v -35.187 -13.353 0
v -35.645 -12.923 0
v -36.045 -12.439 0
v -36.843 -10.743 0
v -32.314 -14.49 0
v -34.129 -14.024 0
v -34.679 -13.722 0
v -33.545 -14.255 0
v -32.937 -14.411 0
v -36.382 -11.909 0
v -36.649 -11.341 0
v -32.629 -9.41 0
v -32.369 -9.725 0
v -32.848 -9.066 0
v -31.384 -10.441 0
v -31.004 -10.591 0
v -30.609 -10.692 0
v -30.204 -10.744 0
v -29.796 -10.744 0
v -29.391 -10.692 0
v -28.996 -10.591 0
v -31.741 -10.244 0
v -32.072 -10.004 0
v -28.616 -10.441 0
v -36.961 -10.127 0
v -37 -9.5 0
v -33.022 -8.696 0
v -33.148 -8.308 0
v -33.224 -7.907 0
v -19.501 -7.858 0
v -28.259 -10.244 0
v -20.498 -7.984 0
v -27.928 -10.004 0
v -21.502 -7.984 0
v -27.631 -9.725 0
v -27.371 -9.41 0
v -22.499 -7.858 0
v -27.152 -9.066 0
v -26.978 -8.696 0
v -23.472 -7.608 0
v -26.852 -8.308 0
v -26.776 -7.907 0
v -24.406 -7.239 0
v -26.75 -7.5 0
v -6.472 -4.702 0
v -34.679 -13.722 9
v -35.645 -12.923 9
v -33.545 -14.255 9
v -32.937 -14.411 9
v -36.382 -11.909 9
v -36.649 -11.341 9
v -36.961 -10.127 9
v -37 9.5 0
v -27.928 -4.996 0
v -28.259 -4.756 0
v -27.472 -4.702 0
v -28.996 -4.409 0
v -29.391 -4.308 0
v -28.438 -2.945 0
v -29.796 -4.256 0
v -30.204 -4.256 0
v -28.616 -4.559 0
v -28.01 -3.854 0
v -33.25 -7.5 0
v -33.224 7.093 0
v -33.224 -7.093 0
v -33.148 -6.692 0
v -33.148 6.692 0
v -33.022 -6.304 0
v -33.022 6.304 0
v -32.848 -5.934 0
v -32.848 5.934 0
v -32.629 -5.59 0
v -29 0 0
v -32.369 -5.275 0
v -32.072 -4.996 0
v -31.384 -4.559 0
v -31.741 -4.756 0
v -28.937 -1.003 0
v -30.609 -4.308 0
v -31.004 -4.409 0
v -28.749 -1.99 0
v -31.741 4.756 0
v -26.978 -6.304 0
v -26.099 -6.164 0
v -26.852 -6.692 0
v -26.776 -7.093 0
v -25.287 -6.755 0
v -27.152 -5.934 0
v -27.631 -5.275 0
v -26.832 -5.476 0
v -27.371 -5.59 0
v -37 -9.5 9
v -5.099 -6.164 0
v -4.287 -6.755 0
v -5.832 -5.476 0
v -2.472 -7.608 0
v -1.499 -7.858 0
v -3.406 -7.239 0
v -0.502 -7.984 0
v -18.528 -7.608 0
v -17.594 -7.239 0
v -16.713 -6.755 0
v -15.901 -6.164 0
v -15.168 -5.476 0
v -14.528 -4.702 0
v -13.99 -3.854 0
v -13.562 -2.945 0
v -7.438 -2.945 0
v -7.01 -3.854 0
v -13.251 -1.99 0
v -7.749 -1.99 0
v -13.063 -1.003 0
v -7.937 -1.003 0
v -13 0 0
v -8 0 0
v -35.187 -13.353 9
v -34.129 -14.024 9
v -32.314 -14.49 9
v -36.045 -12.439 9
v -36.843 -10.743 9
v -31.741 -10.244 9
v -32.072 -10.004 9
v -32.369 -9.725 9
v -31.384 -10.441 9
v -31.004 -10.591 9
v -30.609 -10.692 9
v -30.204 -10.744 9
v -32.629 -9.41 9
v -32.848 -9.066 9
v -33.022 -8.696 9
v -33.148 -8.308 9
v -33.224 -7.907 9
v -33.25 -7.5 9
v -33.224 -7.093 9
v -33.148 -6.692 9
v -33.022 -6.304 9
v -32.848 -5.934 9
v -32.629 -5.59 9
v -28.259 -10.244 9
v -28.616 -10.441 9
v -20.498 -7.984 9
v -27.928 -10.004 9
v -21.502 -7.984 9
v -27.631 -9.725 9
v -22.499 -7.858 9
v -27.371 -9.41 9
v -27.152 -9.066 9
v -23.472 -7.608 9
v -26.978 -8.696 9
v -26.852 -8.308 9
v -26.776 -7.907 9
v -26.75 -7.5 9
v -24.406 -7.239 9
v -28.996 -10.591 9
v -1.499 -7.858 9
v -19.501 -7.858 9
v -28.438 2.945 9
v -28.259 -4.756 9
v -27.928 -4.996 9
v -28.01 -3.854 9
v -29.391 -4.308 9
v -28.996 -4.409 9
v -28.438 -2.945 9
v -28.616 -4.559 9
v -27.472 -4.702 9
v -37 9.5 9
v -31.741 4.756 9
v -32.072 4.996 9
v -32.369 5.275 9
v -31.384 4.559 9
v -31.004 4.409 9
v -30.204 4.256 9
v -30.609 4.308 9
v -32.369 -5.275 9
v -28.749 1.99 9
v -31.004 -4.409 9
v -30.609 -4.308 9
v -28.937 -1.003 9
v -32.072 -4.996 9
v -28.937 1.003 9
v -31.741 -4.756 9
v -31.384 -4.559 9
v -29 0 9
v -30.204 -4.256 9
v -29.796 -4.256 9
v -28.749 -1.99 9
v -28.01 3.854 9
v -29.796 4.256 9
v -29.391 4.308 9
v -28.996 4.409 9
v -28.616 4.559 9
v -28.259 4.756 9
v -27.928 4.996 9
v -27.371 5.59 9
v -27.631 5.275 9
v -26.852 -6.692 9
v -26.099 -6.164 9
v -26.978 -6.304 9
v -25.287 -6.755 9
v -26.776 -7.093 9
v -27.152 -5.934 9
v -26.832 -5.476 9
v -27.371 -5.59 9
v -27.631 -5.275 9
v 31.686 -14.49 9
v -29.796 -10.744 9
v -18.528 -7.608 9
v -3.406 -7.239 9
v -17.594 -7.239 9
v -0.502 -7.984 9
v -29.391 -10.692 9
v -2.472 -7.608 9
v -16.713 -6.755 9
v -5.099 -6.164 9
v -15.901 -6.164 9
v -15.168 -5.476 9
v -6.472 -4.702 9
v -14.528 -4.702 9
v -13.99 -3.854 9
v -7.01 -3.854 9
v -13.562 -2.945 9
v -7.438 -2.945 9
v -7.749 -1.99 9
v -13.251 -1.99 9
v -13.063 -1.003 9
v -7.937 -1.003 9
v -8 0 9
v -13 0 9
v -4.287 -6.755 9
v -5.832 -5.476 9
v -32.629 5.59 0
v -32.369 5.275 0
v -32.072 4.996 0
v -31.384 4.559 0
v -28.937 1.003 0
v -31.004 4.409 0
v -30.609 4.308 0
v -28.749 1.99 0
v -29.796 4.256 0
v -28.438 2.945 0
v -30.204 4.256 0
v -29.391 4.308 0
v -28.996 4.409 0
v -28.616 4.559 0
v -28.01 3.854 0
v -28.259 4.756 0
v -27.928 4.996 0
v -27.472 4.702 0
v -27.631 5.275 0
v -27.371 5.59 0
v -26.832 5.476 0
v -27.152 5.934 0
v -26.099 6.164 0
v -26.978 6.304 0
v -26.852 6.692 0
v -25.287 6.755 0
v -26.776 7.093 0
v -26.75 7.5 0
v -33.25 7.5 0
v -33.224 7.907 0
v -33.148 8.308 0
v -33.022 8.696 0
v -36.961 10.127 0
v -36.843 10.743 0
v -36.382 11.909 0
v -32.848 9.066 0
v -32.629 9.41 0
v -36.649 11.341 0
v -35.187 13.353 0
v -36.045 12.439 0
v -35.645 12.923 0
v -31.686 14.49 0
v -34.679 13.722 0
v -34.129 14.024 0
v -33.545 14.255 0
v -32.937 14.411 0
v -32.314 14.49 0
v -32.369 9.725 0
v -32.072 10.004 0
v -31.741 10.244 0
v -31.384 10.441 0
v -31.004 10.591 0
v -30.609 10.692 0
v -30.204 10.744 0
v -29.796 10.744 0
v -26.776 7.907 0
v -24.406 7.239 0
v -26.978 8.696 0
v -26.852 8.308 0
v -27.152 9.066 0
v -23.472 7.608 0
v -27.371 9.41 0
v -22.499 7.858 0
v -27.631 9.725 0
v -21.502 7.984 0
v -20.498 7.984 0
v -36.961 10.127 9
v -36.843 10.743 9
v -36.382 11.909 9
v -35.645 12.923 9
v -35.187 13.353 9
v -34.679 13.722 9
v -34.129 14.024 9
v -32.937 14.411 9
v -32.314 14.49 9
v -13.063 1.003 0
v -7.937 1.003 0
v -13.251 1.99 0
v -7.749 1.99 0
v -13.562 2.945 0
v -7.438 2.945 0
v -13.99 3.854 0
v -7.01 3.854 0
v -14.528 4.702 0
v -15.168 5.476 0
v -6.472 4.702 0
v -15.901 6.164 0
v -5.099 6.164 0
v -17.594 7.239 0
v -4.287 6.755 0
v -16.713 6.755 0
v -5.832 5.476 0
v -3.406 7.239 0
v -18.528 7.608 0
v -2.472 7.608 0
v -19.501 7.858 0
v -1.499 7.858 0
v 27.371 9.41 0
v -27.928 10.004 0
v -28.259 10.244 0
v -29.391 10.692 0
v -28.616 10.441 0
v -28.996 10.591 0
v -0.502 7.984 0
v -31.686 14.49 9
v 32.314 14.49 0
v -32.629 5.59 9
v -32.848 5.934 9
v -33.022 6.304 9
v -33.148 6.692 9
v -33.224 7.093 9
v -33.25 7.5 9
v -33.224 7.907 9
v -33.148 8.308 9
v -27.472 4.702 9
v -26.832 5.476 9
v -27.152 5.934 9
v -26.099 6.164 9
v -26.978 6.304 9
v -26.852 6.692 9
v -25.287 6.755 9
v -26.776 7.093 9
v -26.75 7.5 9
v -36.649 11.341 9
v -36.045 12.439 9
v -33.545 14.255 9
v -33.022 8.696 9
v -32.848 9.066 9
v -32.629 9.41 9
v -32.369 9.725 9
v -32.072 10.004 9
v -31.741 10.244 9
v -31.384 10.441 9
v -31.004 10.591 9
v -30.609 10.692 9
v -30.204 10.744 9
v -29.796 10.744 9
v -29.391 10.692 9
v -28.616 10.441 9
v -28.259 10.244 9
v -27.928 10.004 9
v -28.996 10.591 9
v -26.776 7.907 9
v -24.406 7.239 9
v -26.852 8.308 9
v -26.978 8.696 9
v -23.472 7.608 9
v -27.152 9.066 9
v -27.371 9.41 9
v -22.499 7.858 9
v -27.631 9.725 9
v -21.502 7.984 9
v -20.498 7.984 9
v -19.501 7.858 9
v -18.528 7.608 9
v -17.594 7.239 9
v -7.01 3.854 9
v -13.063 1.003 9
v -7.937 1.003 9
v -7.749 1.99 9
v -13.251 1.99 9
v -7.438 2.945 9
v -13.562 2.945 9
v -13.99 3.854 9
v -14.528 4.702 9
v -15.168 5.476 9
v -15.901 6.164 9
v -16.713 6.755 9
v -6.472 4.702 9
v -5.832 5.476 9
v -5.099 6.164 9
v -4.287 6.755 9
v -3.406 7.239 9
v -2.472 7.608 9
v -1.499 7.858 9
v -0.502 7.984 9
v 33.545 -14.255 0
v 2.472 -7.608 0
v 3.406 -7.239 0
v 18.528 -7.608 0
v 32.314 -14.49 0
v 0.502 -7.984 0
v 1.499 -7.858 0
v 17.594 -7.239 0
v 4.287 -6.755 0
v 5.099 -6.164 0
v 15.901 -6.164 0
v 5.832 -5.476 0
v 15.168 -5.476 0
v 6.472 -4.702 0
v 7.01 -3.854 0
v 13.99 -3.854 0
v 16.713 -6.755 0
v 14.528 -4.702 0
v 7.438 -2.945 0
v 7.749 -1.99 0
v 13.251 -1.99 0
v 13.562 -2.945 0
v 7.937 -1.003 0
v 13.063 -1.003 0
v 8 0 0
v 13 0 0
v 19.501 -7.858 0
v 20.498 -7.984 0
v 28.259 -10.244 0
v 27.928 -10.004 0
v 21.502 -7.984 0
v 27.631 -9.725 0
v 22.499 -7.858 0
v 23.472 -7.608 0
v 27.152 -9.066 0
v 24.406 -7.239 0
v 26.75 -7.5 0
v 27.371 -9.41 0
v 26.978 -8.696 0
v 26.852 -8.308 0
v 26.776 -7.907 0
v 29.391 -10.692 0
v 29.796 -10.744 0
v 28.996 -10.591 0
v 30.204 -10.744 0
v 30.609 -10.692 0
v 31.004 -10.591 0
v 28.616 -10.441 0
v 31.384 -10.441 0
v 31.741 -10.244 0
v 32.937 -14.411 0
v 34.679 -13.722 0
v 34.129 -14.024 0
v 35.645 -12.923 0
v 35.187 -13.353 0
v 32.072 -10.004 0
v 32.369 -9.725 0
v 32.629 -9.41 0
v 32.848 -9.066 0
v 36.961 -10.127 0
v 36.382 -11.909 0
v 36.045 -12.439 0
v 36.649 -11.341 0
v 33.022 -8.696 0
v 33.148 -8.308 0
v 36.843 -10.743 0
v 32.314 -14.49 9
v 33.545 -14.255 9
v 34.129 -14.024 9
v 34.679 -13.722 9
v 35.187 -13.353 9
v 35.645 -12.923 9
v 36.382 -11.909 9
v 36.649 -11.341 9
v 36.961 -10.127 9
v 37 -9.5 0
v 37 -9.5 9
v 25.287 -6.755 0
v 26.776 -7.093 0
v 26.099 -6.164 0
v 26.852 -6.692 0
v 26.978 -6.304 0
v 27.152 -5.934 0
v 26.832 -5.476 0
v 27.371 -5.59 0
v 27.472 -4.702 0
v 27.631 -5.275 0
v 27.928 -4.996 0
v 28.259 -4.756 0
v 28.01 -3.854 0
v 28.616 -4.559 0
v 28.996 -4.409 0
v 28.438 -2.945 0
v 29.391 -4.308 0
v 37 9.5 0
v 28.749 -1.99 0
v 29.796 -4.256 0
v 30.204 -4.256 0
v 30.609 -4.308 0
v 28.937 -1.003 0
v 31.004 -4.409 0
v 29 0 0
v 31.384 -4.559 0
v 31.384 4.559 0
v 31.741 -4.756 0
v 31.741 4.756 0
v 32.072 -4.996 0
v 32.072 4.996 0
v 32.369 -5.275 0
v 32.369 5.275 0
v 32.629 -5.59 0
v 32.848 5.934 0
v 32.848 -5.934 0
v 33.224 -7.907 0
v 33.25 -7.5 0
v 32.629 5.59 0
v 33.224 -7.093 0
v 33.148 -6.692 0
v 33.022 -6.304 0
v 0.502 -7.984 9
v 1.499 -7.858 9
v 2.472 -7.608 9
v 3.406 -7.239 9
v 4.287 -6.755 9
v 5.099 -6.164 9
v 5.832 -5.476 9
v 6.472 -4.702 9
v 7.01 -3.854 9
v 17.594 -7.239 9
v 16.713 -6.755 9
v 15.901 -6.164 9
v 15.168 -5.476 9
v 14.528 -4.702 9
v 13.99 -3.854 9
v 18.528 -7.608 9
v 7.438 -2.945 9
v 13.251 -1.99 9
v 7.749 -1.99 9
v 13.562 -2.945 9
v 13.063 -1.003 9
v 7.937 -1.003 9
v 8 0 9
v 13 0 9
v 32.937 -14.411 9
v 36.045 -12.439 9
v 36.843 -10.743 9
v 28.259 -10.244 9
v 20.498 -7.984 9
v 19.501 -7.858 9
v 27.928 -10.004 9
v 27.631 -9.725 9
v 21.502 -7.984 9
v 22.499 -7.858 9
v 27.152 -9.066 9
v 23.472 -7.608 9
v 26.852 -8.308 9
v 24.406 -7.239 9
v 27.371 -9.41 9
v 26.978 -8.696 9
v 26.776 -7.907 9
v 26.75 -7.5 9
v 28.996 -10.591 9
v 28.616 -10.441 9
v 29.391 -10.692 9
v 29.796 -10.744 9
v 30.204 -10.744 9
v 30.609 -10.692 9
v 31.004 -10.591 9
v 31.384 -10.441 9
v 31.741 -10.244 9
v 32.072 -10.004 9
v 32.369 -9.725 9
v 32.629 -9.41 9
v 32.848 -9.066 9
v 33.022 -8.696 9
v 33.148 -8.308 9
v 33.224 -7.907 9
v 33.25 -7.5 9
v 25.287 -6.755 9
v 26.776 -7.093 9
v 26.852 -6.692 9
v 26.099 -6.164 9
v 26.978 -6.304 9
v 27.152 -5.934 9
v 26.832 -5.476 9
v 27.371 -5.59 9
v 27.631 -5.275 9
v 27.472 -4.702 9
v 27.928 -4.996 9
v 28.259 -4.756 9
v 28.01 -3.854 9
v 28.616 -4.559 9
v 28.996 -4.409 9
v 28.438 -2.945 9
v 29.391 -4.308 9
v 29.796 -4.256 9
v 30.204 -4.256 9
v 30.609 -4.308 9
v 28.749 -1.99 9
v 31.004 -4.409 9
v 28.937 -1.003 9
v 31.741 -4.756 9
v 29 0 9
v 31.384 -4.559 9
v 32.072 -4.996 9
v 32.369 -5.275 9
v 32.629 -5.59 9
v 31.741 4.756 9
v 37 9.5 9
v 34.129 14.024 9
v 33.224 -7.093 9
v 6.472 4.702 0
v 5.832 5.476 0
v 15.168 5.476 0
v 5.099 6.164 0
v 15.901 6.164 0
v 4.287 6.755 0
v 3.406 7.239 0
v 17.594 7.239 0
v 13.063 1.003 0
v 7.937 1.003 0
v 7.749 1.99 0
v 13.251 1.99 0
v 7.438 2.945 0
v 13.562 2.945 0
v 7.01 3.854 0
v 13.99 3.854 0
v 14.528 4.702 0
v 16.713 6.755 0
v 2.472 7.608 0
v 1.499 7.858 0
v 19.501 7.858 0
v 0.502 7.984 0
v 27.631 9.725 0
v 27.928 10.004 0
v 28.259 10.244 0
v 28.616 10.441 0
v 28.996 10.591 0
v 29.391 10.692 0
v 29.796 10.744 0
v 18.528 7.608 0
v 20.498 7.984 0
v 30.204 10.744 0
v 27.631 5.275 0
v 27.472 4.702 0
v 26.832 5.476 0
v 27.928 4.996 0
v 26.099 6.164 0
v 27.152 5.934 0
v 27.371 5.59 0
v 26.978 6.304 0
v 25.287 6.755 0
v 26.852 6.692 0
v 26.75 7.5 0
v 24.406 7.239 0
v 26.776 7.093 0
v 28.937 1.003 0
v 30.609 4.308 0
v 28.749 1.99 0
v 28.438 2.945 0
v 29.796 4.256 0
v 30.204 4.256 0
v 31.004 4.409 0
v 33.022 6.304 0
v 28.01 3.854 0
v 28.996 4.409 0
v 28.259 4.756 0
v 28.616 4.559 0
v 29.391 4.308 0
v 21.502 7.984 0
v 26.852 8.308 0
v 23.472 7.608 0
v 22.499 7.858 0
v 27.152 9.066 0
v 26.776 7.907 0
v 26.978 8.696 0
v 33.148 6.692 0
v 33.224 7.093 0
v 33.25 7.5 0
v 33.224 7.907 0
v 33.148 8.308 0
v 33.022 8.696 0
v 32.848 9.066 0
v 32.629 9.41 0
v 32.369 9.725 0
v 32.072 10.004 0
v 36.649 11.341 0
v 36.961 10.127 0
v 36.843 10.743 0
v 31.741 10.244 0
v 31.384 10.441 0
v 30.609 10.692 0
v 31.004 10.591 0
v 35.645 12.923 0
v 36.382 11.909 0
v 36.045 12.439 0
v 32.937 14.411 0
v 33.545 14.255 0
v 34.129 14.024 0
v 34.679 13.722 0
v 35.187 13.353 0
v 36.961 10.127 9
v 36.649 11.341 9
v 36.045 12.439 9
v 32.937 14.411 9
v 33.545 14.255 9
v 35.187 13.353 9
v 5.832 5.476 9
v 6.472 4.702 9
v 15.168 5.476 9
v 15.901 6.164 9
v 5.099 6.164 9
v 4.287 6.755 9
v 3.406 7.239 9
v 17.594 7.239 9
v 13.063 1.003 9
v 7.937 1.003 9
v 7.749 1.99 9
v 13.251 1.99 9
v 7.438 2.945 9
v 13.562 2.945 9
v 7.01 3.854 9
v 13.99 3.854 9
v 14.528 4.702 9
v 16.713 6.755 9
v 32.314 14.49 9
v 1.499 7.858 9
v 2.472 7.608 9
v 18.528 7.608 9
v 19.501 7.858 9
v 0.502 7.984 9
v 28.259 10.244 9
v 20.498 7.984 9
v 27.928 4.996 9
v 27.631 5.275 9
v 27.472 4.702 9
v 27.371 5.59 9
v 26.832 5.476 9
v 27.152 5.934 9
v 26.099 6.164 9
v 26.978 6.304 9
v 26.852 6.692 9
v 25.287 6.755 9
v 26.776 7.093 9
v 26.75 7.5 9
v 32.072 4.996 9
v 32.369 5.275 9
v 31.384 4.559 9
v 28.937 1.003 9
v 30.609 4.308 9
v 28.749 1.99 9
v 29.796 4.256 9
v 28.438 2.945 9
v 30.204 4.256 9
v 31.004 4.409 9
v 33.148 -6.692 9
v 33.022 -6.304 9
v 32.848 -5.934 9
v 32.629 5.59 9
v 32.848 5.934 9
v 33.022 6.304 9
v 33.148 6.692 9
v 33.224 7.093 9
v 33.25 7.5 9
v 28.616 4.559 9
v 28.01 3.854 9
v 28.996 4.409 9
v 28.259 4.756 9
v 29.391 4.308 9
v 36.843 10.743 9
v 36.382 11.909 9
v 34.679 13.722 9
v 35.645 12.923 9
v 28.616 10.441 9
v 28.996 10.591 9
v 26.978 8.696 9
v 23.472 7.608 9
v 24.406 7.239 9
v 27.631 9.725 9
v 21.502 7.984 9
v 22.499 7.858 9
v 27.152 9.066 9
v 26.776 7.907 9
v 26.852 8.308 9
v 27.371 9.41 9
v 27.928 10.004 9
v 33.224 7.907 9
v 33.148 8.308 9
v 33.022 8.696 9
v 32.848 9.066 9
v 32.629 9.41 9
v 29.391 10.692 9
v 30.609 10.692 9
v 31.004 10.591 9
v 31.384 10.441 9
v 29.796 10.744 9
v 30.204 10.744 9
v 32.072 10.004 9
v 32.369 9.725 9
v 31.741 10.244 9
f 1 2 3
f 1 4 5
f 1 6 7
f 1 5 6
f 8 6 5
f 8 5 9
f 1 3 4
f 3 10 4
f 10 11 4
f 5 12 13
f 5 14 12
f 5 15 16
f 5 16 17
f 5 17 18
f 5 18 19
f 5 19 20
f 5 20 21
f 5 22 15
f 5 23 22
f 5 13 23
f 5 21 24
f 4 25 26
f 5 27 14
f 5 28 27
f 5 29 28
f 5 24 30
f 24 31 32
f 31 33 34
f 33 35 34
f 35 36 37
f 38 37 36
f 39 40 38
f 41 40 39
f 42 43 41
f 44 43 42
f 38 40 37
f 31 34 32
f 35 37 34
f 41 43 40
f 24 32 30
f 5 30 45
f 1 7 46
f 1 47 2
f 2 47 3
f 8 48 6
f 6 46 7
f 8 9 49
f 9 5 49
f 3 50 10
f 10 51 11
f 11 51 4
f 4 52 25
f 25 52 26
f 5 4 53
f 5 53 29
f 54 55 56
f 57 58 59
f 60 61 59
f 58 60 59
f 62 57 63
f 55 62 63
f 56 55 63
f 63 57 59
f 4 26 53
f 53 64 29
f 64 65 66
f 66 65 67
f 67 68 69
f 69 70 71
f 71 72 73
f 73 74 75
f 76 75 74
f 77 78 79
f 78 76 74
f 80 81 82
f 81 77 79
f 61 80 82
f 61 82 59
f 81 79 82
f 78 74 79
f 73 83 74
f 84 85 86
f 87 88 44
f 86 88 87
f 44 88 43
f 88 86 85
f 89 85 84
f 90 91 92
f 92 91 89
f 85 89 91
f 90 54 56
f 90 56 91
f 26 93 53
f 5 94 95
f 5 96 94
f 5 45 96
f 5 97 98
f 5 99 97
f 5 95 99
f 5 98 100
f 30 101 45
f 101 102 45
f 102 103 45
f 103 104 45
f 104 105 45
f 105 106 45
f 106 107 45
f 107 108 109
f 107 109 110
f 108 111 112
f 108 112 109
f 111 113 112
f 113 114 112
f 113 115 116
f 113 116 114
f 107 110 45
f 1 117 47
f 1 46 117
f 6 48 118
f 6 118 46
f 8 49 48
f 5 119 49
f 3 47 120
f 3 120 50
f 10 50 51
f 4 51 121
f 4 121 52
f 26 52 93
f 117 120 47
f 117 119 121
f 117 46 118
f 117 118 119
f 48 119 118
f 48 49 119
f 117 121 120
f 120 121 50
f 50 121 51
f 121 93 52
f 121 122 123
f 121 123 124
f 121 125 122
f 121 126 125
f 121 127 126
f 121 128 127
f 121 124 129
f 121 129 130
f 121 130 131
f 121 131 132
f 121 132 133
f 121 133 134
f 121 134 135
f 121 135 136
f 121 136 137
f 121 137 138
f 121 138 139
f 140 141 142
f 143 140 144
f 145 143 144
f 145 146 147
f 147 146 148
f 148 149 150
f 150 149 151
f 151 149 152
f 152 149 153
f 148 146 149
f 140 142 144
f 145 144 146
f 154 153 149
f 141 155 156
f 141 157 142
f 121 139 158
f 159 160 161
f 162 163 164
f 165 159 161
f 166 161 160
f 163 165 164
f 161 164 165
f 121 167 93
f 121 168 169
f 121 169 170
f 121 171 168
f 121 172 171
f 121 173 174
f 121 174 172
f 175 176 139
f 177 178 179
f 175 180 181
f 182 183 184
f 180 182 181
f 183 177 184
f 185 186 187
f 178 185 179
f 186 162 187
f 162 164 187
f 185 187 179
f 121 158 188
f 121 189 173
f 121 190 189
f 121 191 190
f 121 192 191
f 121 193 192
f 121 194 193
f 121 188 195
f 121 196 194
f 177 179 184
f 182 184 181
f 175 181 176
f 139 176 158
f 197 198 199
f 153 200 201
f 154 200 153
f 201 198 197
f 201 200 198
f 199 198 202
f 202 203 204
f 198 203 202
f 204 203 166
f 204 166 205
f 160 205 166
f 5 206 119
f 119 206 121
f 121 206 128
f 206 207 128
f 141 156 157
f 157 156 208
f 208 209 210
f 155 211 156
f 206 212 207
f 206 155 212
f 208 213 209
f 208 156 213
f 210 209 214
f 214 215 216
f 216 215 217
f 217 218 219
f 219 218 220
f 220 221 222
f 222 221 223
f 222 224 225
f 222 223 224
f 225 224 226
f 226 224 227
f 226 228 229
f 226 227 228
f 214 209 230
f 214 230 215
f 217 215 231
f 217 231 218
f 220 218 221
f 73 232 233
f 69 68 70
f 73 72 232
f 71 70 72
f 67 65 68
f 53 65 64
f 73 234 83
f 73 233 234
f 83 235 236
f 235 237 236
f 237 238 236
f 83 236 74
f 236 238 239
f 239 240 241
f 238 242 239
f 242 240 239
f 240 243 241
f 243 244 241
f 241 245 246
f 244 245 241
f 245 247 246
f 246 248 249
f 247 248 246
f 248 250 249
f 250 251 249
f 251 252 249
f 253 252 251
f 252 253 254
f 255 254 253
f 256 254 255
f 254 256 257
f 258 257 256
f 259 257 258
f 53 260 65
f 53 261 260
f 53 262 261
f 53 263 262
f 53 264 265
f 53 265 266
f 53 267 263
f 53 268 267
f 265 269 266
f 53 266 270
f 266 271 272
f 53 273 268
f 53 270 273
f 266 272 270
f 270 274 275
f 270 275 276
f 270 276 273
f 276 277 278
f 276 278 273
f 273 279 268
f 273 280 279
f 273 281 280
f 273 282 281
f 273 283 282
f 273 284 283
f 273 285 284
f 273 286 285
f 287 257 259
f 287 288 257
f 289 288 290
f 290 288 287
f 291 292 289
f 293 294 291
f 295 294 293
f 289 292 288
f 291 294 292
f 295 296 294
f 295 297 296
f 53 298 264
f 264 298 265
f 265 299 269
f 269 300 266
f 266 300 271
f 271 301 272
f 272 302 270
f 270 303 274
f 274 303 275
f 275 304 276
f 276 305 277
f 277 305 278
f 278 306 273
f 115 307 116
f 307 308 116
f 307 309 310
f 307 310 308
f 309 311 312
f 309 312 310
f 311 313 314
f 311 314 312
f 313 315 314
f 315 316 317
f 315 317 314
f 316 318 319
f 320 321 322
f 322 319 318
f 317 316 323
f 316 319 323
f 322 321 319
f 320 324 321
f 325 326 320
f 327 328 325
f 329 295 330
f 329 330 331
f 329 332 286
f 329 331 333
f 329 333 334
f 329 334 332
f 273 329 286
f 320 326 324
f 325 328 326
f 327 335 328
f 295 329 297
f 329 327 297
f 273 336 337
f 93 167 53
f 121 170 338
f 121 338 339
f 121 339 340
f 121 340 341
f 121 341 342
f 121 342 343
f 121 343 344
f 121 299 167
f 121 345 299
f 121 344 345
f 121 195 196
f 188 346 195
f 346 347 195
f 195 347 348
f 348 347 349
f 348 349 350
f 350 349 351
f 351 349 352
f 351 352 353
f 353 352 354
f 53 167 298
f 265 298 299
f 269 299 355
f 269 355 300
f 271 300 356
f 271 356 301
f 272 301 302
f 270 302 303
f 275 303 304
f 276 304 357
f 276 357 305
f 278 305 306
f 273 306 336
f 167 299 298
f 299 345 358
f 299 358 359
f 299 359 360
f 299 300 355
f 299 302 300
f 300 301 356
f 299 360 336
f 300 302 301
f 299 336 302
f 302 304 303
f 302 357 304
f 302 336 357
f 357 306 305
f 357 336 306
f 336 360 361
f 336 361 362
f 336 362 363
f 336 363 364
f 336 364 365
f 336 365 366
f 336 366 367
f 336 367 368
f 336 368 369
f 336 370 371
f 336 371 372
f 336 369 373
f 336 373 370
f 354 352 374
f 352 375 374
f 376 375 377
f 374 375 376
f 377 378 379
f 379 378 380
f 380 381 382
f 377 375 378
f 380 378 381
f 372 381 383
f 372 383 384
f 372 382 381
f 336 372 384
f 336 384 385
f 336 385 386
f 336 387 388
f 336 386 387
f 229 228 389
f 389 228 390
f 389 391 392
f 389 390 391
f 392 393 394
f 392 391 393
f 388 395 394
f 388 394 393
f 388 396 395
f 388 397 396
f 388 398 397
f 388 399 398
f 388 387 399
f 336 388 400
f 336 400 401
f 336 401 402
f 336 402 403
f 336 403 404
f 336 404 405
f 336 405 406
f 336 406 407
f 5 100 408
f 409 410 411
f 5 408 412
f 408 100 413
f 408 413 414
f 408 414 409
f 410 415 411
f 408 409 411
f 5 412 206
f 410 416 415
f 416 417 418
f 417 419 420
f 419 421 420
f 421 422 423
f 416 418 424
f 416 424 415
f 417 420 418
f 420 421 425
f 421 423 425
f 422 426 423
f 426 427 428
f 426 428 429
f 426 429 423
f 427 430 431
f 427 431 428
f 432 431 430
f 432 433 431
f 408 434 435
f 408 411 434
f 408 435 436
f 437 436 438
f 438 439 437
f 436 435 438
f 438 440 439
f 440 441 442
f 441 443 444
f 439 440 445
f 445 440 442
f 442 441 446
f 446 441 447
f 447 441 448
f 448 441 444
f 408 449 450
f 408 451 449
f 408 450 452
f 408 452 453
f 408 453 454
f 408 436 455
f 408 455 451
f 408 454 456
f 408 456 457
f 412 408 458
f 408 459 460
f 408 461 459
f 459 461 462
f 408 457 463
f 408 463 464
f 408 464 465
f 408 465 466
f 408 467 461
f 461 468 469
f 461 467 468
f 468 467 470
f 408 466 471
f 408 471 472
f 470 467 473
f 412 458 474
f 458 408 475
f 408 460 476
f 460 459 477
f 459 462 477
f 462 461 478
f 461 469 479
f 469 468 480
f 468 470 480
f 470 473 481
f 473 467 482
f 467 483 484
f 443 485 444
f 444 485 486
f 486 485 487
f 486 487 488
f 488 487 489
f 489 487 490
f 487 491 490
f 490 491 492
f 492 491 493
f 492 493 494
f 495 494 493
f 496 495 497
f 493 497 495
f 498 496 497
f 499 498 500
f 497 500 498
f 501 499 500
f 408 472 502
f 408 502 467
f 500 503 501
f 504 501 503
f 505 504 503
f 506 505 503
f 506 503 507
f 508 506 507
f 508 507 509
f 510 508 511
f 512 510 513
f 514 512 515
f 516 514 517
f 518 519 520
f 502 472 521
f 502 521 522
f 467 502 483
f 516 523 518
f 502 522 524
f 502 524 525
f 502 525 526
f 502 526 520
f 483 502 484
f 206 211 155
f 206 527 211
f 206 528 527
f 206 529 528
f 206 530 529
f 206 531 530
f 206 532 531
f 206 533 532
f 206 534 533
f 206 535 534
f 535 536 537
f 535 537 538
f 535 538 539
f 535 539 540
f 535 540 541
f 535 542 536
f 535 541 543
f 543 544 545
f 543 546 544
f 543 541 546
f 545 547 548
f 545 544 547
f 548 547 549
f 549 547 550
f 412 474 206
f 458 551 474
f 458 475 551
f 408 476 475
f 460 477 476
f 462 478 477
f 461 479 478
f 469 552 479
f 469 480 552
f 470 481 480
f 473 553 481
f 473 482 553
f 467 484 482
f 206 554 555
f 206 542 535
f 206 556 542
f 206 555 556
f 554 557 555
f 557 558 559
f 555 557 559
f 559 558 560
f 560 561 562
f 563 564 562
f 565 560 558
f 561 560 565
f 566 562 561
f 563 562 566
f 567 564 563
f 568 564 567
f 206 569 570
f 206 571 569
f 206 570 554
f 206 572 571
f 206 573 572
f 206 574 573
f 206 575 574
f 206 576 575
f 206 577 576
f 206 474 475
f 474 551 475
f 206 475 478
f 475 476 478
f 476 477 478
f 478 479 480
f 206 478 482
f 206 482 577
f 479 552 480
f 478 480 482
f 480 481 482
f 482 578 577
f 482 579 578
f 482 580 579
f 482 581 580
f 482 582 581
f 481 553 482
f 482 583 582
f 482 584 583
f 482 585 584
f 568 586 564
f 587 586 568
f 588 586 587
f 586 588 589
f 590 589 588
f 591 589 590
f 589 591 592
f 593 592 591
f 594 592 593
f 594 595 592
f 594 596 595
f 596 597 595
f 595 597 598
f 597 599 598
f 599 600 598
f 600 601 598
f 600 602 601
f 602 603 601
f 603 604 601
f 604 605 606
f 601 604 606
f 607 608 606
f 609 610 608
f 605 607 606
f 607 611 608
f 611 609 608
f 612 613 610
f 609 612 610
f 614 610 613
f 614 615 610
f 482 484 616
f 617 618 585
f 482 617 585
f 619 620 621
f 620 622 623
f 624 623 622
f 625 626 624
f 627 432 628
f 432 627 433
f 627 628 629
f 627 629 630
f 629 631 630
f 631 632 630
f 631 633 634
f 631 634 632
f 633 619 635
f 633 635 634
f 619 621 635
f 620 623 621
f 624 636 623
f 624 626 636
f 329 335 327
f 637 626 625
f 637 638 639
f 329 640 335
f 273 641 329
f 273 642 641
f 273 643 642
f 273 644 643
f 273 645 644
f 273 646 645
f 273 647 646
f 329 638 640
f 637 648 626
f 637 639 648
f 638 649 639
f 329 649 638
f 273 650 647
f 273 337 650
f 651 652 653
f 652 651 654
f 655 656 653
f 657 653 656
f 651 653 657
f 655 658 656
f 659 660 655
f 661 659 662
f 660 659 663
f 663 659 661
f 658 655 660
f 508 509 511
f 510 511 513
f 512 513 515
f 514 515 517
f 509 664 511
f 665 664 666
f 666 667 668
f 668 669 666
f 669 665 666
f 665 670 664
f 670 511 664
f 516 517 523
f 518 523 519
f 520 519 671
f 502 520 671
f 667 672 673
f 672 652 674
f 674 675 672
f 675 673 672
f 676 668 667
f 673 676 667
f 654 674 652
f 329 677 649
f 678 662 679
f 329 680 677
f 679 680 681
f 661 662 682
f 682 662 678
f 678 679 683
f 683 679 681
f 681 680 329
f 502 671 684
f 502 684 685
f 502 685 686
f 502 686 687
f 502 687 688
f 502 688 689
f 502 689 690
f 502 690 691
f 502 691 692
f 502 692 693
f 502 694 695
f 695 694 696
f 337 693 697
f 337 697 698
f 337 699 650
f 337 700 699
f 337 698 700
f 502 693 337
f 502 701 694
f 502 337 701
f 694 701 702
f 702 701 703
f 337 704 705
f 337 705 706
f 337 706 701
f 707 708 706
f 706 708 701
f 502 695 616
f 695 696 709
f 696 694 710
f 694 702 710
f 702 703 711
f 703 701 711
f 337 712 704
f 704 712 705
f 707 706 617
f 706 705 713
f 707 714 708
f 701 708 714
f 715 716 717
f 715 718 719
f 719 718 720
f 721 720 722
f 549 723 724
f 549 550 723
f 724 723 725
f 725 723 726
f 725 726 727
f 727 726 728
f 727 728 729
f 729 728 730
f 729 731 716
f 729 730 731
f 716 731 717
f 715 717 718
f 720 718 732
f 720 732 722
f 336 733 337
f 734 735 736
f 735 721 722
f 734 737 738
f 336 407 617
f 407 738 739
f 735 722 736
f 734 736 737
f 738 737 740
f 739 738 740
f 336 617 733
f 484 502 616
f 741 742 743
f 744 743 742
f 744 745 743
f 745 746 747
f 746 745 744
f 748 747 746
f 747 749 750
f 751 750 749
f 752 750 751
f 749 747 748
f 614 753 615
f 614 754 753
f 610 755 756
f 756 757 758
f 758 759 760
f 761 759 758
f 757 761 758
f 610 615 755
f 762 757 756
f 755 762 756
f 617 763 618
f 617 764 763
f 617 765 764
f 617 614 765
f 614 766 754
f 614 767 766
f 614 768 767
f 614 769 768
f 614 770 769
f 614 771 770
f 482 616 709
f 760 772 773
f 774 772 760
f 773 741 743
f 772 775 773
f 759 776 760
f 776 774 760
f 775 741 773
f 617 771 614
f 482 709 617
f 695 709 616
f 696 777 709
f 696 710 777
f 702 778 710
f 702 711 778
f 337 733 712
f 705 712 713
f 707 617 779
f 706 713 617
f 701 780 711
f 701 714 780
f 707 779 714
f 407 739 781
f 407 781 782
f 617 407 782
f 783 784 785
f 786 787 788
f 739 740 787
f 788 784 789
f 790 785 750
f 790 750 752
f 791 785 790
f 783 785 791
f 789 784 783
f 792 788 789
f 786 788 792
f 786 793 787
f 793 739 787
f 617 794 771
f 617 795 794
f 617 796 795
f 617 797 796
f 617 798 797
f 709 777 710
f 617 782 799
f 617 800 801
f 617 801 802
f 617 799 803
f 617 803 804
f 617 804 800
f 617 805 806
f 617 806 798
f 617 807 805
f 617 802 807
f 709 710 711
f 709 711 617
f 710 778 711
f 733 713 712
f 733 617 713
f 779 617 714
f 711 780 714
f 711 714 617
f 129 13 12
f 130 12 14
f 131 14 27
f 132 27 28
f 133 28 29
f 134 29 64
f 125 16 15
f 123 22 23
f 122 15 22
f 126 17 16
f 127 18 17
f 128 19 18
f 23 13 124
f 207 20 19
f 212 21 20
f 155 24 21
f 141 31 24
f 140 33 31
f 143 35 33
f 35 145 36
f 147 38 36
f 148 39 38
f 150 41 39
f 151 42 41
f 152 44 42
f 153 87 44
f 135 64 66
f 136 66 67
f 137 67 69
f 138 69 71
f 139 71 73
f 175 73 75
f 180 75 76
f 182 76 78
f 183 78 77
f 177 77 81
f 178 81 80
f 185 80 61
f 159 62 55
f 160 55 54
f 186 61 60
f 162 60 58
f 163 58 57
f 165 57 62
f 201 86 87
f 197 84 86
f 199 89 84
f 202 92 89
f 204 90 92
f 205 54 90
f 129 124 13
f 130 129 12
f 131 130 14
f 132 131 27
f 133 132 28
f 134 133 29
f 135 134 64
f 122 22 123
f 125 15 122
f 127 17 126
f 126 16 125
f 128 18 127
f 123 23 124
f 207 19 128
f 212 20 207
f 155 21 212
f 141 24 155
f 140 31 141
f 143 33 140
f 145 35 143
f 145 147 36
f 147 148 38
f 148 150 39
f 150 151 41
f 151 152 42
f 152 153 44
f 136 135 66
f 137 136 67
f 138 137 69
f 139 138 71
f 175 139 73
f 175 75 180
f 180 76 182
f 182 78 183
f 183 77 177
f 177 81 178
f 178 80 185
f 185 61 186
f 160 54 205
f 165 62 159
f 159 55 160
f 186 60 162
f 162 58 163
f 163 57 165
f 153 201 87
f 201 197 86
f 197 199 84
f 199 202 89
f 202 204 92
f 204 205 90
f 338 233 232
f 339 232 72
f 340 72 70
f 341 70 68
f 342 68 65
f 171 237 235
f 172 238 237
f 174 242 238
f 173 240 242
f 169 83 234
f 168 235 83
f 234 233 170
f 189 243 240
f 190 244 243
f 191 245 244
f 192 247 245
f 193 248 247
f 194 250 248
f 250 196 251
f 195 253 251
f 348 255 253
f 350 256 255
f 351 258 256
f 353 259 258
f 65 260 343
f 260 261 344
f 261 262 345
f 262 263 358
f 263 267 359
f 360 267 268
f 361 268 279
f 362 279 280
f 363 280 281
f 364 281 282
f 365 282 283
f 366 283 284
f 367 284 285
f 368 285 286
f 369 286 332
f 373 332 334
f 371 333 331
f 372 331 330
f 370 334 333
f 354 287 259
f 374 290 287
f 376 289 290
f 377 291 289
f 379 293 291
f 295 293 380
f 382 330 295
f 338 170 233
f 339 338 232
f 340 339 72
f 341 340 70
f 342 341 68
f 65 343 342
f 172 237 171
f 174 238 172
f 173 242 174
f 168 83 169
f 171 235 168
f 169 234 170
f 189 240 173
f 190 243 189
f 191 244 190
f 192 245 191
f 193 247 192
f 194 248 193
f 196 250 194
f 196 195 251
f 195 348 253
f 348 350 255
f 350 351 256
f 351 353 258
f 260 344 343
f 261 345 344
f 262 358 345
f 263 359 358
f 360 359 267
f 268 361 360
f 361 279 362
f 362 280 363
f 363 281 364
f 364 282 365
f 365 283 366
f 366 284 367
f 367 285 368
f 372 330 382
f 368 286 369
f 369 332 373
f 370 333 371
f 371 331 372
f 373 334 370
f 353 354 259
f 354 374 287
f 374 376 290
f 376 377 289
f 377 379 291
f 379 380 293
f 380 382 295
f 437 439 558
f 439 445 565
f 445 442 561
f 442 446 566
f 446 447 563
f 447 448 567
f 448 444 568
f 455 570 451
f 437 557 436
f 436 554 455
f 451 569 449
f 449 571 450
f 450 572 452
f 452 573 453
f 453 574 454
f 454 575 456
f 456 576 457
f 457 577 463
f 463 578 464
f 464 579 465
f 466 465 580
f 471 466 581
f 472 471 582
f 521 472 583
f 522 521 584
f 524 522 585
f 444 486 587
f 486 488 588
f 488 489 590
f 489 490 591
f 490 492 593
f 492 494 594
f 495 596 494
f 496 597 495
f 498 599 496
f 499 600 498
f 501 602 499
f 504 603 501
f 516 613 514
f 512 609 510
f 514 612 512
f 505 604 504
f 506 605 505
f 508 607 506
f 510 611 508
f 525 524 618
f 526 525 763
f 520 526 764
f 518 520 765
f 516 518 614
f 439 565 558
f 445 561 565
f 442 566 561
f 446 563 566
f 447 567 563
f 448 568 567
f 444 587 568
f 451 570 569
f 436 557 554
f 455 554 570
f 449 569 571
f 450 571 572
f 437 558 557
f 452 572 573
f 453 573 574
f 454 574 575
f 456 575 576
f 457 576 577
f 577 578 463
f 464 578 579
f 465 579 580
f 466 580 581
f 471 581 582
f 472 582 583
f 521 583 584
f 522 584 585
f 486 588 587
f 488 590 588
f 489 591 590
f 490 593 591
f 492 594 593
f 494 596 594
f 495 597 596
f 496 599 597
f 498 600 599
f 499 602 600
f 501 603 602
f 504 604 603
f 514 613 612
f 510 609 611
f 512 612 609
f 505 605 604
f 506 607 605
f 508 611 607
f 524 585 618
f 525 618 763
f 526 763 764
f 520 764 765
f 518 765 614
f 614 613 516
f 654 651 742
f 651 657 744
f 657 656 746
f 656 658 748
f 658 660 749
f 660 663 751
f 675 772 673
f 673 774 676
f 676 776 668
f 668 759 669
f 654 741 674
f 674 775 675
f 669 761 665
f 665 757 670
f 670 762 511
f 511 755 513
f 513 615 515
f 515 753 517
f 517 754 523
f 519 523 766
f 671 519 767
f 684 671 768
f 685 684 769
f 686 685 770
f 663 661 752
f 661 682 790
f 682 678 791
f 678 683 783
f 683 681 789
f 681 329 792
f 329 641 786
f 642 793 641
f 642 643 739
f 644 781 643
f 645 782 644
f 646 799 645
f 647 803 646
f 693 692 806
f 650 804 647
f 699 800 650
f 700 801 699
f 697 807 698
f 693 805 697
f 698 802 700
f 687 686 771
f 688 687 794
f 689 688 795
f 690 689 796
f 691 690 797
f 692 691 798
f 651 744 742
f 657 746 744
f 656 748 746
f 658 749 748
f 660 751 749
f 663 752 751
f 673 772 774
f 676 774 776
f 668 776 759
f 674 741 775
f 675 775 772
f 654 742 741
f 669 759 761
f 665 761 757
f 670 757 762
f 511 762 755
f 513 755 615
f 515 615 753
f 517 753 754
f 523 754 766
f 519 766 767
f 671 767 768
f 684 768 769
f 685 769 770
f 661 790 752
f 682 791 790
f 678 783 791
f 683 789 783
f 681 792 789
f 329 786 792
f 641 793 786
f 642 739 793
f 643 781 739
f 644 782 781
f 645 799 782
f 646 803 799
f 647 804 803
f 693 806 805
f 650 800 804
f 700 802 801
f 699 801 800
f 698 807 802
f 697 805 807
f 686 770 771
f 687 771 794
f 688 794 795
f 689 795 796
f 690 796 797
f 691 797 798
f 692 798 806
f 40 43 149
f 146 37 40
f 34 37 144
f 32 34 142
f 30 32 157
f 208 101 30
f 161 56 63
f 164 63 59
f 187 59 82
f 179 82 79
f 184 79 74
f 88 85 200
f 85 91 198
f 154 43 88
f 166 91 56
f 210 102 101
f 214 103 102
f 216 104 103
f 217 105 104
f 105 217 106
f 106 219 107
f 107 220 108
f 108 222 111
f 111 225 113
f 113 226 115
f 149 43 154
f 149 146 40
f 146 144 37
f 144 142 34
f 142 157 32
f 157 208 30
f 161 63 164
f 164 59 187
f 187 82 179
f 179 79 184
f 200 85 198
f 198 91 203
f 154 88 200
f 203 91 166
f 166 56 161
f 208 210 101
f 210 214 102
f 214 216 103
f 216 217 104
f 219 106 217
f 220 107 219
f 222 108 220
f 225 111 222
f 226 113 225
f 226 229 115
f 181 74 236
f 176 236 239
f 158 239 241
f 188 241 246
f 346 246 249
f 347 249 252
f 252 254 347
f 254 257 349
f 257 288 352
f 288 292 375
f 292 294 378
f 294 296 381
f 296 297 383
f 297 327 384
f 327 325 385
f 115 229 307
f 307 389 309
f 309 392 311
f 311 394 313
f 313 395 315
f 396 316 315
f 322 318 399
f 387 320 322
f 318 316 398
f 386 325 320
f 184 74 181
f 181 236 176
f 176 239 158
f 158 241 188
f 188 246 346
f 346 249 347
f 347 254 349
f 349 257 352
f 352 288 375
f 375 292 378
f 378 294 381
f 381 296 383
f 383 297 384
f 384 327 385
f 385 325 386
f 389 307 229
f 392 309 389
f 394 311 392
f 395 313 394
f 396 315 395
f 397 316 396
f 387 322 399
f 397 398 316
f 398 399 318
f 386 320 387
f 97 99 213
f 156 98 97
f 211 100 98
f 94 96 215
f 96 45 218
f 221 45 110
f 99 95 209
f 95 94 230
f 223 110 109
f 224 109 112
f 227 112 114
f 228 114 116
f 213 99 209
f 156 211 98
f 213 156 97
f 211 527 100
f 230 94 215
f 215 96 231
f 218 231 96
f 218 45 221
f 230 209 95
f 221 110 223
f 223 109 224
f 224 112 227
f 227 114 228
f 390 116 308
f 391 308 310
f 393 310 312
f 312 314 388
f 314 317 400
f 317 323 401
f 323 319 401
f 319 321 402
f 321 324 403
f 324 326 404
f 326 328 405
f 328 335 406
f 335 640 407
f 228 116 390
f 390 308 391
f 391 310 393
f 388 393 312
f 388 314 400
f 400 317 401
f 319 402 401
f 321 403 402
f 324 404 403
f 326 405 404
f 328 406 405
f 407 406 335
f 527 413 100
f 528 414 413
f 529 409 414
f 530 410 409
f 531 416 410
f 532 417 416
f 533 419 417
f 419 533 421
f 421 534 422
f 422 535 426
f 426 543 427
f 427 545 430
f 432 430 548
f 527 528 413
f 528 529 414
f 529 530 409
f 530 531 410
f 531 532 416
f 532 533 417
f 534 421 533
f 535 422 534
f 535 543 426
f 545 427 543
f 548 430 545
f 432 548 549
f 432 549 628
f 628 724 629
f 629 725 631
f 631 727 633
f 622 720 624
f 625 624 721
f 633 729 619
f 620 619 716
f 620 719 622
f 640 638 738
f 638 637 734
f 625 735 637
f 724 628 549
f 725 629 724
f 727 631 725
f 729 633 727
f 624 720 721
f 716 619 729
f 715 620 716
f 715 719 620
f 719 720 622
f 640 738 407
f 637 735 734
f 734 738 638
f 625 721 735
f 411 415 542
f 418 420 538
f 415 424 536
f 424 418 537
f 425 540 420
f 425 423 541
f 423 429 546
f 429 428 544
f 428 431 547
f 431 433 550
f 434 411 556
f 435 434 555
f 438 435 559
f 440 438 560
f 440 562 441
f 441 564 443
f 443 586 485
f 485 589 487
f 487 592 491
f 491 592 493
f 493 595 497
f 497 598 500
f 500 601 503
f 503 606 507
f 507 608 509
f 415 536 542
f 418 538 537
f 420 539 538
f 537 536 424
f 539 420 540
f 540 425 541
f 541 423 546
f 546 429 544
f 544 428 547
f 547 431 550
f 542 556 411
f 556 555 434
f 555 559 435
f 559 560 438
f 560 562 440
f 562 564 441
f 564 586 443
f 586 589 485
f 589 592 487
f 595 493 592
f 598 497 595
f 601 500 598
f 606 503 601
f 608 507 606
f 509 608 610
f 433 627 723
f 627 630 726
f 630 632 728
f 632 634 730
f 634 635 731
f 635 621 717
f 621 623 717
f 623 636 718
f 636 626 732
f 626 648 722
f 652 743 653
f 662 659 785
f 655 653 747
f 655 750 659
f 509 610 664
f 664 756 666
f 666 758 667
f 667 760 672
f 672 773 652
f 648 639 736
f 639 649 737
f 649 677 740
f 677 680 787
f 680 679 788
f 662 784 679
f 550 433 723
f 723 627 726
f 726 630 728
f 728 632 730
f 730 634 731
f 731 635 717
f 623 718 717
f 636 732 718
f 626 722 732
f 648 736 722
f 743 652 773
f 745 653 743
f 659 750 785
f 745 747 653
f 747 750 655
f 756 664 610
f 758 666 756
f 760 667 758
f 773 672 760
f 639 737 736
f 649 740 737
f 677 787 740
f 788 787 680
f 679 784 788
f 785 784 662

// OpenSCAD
$fn = 50;

difference() {
	union() {
		hull() {
			translate(v = [-32.0, 9.5, 0]) {
				cylinder(h = 9, r = 5);
			}
			translate(v = [32.0, 9.5, 0]) {
				cylinder(h = 9, r = 5);
			}
			translate(v = [-32.0, -9.5, 0]) {
				cylinder(h = 9, r = 5);
			}
			translate(v = [32.0, -9.5, 0]) {
				cylinder(h = 9, r = 5);
			}
		}
	}
	union() {
		translate(v = [-30.0, -7.5, -100.0]) {
			cylinder(h = 200, r = 3.25);
		}
		translate(v = [-30.0, 7.5, -100.0]) {
			cylinder(h = 200, r = 3.25);
		}
		translate(v = [30.0, -7.5, -100.0]) {
			cylinder(h = 200, r = 3.25);
		}
		translate(v = [30.0, 7.5, -100.0]) {
			cylinder(h = 200, r = 3.25);
		}
		translate(v = [-30.0, -7.5, -100.0]) {
			cylinder(h = 200, r = 1.8);
		}
		translate(v = [-30.0, 7.5, -100.0]) {
			cylinder(h = 200, r = 1.8);
		}
		translate(v = [30.0, -7.5, -100.0]) {
			cylinder(h = 200, r = 1.8);
		}
		translate(v = [30.0, 7.5, -100.0]) {
			cylinder(h = 200, r = 1.8);
		}
		translate(v = [-21.0, 0, 0.0]) {
			cylinder(h = 9, r = 8.0);
		}
		cylinder(h = 9, r = 8.0);
		translate(v = [21.0, 0, 0.0]) {
			cylinder(h = 9, r = 8.0);
		}
	}
}
